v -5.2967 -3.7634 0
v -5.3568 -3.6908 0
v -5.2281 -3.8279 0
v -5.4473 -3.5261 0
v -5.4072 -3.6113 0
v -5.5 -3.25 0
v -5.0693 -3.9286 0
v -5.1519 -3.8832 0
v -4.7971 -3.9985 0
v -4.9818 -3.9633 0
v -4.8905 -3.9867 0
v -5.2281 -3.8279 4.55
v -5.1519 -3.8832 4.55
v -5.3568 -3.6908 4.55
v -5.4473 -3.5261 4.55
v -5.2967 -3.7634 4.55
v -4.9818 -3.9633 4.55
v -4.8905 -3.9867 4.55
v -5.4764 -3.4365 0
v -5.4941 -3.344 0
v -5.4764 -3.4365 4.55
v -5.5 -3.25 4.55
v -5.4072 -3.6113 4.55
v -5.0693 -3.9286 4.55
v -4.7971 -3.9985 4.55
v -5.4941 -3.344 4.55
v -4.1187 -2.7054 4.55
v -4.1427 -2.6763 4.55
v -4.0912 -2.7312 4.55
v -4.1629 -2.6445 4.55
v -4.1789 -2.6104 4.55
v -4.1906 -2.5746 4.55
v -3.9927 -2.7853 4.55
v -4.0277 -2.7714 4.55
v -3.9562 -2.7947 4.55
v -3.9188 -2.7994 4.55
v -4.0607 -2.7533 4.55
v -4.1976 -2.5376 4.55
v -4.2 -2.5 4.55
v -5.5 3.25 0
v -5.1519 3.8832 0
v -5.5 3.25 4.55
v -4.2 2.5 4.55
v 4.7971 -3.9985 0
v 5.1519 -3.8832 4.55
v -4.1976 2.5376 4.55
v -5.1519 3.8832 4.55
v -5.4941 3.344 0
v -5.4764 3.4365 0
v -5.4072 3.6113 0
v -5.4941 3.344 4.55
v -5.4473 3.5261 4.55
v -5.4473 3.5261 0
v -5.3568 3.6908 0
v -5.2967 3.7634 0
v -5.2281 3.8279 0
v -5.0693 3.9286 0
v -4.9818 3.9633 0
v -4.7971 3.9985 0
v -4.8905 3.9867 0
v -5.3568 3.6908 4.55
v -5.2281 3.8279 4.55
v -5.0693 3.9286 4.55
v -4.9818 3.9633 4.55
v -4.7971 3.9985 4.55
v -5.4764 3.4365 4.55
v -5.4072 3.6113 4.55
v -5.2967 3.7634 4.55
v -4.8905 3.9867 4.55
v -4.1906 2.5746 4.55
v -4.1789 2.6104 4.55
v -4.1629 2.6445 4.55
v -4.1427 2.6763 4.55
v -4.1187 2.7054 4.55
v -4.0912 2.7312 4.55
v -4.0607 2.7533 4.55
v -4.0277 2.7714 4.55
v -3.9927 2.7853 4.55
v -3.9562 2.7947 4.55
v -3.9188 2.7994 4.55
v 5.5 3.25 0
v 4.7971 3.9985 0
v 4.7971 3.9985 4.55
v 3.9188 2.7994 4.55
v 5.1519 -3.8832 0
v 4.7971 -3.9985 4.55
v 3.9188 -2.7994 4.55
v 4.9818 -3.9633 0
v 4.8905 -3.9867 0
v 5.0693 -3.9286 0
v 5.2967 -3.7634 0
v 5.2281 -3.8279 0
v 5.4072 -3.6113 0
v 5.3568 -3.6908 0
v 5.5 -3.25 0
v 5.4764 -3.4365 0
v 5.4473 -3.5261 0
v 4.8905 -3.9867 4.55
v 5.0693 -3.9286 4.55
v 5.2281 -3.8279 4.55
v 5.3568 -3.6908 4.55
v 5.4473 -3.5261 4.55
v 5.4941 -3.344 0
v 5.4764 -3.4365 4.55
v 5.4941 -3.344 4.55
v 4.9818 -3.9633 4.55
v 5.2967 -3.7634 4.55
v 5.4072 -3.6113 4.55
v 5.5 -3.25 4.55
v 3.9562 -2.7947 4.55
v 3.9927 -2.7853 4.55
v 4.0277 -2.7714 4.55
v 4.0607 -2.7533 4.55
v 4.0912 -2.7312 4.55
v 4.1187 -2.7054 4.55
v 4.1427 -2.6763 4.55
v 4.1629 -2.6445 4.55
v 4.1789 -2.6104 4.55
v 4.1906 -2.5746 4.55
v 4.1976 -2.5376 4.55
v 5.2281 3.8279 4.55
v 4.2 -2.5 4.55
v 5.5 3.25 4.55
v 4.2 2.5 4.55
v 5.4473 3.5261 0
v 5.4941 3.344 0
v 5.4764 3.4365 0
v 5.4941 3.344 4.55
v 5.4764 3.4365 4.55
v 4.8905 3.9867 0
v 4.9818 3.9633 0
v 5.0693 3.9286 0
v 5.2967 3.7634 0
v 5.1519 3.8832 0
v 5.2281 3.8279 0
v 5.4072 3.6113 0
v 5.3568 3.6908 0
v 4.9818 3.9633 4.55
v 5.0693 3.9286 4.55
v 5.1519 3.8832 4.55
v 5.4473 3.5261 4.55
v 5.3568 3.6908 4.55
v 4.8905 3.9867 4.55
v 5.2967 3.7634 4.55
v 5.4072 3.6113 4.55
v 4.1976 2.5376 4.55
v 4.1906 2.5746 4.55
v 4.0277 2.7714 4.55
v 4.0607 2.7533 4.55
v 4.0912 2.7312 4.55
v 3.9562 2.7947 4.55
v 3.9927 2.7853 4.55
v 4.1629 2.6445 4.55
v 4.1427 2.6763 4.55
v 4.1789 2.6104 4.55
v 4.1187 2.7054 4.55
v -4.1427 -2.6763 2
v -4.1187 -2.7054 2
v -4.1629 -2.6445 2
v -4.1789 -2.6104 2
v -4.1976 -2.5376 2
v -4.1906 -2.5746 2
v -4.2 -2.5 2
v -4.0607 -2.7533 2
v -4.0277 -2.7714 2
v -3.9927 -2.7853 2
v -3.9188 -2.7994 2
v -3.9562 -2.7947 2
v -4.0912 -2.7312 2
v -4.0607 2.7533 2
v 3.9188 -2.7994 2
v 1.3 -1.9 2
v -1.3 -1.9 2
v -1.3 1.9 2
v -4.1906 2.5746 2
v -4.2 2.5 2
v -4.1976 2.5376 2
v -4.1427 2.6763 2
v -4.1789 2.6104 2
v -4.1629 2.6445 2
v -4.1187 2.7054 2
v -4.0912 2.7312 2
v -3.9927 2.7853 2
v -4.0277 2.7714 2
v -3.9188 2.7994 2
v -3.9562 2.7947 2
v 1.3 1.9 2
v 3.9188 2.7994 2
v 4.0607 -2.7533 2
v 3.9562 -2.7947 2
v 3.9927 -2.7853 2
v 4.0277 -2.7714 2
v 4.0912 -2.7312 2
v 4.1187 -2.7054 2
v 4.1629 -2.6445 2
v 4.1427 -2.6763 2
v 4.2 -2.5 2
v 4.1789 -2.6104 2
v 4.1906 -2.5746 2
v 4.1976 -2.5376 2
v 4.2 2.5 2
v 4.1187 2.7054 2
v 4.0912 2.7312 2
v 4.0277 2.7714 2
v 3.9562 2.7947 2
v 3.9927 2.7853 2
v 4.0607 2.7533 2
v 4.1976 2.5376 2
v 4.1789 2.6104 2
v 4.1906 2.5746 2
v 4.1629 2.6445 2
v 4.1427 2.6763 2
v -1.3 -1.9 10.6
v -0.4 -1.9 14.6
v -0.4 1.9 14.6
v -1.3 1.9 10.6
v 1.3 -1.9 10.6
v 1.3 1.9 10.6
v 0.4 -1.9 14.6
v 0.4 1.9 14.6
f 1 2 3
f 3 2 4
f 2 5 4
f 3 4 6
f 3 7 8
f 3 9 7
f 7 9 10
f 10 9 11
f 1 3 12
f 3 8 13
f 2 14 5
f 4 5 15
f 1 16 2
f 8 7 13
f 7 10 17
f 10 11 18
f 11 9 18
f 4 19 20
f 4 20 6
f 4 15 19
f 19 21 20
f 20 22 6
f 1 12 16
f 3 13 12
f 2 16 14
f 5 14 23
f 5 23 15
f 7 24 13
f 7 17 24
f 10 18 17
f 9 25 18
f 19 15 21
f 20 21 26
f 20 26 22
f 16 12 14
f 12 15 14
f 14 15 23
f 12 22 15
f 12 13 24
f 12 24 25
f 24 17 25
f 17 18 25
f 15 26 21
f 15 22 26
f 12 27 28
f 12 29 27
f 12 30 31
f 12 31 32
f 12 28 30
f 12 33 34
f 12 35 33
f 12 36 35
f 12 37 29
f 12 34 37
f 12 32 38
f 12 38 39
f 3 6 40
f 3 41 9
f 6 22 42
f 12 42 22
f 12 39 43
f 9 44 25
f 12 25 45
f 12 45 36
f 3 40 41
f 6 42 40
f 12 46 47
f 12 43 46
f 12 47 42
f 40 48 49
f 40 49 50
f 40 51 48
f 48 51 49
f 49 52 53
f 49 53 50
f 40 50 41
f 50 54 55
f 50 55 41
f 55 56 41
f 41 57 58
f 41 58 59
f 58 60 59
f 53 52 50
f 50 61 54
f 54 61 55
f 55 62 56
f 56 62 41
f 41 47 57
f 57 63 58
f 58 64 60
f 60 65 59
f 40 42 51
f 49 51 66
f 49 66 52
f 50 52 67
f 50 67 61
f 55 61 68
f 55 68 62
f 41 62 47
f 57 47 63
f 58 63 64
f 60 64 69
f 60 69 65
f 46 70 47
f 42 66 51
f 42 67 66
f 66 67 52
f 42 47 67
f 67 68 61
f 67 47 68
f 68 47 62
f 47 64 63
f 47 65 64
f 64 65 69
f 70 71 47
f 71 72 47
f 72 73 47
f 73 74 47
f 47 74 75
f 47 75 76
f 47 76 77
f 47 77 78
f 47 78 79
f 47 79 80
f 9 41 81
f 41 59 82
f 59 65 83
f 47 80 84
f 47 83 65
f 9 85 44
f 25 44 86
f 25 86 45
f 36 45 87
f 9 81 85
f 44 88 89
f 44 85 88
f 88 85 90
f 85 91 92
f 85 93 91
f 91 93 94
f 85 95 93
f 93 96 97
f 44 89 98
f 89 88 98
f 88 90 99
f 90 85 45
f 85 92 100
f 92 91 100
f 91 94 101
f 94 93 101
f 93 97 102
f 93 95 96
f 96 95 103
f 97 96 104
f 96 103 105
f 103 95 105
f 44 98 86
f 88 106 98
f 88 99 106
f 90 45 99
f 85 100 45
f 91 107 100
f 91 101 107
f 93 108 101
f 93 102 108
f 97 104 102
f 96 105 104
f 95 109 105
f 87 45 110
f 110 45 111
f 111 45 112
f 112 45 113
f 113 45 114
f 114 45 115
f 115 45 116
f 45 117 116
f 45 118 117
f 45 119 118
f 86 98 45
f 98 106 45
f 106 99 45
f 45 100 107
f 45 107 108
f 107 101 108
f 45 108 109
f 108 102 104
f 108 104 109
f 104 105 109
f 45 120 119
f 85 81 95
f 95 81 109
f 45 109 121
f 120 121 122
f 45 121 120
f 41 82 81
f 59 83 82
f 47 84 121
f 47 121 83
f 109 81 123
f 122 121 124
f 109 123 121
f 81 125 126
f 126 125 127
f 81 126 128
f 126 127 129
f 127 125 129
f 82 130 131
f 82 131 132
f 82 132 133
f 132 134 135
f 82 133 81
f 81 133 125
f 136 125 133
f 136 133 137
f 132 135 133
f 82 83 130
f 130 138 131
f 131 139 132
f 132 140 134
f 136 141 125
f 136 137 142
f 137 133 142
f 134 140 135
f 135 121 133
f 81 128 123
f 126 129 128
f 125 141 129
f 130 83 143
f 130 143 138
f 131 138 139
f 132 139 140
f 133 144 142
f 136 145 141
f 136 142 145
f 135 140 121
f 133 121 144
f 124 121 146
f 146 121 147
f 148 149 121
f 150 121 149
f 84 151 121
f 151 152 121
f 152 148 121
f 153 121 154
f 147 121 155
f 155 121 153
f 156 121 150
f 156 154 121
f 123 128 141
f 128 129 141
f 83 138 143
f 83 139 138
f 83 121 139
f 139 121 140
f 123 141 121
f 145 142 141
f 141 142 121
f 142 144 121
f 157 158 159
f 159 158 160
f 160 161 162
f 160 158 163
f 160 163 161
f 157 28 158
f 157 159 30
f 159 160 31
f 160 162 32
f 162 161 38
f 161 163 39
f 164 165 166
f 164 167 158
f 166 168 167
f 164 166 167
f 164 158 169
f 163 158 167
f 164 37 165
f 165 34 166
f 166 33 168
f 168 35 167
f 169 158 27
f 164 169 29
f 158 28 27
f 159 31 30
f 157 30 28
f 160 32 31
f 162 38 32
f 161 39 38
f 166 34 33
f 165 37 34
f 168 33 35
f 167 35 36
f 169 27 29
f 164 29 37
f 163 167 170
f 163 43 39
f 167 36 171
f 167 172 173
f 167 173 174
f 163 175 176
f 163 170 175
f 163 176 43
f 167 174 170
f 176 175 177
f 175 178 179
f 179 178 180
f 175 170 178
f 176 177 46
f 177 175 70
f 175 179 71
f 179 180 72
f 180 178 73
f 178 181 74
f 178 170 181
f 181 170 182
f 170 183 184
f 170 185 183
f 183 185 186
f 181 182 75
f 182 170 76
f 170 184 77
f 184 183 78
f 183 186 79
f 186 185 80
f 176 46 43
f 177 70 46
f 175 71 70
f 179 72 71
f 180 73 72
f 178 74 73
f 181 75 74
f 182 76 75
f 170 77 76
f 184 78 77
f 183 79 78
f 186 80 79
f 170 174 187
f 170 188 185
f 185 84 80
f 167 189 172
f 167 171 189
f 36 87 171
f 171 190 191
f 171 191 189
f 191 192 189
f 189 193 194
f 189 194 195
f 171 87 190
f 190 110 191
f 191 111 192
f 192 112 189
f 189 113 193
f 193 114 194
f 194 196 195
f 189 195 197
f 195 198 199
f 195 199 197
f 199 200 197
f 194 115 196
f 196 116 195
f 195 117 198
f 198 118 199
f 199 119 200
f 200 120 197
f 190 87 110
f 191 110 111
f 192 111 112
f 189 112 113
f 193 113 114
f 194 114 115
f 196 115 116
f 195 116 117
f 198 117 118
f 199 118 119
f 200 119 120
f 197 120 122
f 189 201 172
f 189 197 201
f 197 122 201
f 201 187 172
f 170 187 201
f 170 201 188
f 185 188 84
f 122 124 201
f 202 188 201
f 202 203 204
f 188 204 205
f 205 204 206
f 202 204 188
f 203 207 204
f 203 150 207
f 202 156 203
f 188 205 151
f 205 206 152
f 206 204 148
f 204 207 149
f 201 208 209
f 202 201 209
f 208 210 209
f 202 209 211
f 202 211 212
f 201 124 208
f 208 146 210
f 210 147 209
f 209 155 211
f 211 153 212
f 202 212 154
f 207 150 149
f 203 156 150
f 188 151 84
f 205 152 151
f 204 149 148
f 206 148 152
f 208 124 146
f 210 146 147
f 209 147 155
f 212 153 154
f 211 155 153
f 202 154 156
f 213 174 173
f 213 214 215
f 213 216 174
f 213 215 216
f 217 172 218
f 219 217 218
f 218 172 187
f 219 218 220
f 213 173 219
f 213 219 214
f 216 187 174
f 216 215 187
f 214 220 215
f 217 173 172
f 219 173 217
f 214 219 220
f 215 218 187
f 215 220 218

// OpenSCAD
$fn = 50;

difference() {
	union() {
		translate(v = [0, 0, 0]) {
			rotate(a = [0, 0, 0]) {
				difference() {
					union() {
						translate(v = [0, 0, 0]) {
							rotate(a = [0, 0, 0]) {
								difference() {
									union() {
										translate(v = [0, 0, 0]) {
											rotate(a = [0, 0, 0]) {
												difference() {
													union() {
														hull() {
															translate(v = [-4.75, 3.25, 0]) {
																cylinder(h = 4.55, r = 0.75);
															}
															translate(v = [4.75, 3.25, 0]) {
																cylinder(h = 4.55, r = 0.75);
															}
															translate(v = [-4.75, -3.25, 0]) {
																cylinder(h = 4.55, r = 0.75);
															}
															translate(v = [4.75, -3.25, 0]) {
																cylinder(h = 4.55, r = 0.75);
															}
														}
													}
													union() {
														translate(v = [0, 0, 2.0]) {
															hull() {
																translate(v = [-3.9000000000000004, 2.5, 0]) {
																	cylinder(h = 2.65, r = 0.3);
																}
																translate(v = [3.9000000000000004, 2.5, 0]) {
																	cylinder(h = 2.65, r = 0.3);
																}
																translate(v = [-3.9000000000000004, -2.5, 0]) {
																	cylinder(h = 2.65, r = 0.3);
																}
																translate(v = [3.9000000000000004, -2.5, 0]) {
																	cylinder(h = 2.65, r = 0.3);
																}
															}
														}
													}
												}
											}
										}
										translate(v = [0, 0, 0]) {
											rotate(a = [0, 0, 0]) {
												difference() {
													union() {
														translate(v = [-1.4000000000000001, -1.9, 1.95]) {
															cube(size = [2.8000000000000003, 3.8, 12.65]);
														}
													}
													union() {
														translate(v = [0, 2.0, 0]) {
															rotate(a = [90, 0, 0]) {
																linear_extrude(height = 4.0) {
																	polygon(points = [[-1.3, 1.85], [-1.3, 10.6], [-0.4, 14.6], [-0.4, 14.799999999999999], [-1.6, 14.799999999999999], [-1.6, 1.85]]);
																}
															}
														}
														translate(v = [0, 2.0, 0]) {
															rotate(a = [90, 0, 0]) {
																linear_extrude(height = 4.0) {
																	polygon(points = [[1.3, 1.85], [1.3, 10.6], [0.4, 14.6], [0.4, 14.799999999999999], [1.6, 14.799999999999999], [1.6, 1.85]]);
																}
															}
														}
													}
												}
											}
										}
									}
									union();
								}
							}
						}
					}
					union();
				}
			}
		}
	}
	union();
}
